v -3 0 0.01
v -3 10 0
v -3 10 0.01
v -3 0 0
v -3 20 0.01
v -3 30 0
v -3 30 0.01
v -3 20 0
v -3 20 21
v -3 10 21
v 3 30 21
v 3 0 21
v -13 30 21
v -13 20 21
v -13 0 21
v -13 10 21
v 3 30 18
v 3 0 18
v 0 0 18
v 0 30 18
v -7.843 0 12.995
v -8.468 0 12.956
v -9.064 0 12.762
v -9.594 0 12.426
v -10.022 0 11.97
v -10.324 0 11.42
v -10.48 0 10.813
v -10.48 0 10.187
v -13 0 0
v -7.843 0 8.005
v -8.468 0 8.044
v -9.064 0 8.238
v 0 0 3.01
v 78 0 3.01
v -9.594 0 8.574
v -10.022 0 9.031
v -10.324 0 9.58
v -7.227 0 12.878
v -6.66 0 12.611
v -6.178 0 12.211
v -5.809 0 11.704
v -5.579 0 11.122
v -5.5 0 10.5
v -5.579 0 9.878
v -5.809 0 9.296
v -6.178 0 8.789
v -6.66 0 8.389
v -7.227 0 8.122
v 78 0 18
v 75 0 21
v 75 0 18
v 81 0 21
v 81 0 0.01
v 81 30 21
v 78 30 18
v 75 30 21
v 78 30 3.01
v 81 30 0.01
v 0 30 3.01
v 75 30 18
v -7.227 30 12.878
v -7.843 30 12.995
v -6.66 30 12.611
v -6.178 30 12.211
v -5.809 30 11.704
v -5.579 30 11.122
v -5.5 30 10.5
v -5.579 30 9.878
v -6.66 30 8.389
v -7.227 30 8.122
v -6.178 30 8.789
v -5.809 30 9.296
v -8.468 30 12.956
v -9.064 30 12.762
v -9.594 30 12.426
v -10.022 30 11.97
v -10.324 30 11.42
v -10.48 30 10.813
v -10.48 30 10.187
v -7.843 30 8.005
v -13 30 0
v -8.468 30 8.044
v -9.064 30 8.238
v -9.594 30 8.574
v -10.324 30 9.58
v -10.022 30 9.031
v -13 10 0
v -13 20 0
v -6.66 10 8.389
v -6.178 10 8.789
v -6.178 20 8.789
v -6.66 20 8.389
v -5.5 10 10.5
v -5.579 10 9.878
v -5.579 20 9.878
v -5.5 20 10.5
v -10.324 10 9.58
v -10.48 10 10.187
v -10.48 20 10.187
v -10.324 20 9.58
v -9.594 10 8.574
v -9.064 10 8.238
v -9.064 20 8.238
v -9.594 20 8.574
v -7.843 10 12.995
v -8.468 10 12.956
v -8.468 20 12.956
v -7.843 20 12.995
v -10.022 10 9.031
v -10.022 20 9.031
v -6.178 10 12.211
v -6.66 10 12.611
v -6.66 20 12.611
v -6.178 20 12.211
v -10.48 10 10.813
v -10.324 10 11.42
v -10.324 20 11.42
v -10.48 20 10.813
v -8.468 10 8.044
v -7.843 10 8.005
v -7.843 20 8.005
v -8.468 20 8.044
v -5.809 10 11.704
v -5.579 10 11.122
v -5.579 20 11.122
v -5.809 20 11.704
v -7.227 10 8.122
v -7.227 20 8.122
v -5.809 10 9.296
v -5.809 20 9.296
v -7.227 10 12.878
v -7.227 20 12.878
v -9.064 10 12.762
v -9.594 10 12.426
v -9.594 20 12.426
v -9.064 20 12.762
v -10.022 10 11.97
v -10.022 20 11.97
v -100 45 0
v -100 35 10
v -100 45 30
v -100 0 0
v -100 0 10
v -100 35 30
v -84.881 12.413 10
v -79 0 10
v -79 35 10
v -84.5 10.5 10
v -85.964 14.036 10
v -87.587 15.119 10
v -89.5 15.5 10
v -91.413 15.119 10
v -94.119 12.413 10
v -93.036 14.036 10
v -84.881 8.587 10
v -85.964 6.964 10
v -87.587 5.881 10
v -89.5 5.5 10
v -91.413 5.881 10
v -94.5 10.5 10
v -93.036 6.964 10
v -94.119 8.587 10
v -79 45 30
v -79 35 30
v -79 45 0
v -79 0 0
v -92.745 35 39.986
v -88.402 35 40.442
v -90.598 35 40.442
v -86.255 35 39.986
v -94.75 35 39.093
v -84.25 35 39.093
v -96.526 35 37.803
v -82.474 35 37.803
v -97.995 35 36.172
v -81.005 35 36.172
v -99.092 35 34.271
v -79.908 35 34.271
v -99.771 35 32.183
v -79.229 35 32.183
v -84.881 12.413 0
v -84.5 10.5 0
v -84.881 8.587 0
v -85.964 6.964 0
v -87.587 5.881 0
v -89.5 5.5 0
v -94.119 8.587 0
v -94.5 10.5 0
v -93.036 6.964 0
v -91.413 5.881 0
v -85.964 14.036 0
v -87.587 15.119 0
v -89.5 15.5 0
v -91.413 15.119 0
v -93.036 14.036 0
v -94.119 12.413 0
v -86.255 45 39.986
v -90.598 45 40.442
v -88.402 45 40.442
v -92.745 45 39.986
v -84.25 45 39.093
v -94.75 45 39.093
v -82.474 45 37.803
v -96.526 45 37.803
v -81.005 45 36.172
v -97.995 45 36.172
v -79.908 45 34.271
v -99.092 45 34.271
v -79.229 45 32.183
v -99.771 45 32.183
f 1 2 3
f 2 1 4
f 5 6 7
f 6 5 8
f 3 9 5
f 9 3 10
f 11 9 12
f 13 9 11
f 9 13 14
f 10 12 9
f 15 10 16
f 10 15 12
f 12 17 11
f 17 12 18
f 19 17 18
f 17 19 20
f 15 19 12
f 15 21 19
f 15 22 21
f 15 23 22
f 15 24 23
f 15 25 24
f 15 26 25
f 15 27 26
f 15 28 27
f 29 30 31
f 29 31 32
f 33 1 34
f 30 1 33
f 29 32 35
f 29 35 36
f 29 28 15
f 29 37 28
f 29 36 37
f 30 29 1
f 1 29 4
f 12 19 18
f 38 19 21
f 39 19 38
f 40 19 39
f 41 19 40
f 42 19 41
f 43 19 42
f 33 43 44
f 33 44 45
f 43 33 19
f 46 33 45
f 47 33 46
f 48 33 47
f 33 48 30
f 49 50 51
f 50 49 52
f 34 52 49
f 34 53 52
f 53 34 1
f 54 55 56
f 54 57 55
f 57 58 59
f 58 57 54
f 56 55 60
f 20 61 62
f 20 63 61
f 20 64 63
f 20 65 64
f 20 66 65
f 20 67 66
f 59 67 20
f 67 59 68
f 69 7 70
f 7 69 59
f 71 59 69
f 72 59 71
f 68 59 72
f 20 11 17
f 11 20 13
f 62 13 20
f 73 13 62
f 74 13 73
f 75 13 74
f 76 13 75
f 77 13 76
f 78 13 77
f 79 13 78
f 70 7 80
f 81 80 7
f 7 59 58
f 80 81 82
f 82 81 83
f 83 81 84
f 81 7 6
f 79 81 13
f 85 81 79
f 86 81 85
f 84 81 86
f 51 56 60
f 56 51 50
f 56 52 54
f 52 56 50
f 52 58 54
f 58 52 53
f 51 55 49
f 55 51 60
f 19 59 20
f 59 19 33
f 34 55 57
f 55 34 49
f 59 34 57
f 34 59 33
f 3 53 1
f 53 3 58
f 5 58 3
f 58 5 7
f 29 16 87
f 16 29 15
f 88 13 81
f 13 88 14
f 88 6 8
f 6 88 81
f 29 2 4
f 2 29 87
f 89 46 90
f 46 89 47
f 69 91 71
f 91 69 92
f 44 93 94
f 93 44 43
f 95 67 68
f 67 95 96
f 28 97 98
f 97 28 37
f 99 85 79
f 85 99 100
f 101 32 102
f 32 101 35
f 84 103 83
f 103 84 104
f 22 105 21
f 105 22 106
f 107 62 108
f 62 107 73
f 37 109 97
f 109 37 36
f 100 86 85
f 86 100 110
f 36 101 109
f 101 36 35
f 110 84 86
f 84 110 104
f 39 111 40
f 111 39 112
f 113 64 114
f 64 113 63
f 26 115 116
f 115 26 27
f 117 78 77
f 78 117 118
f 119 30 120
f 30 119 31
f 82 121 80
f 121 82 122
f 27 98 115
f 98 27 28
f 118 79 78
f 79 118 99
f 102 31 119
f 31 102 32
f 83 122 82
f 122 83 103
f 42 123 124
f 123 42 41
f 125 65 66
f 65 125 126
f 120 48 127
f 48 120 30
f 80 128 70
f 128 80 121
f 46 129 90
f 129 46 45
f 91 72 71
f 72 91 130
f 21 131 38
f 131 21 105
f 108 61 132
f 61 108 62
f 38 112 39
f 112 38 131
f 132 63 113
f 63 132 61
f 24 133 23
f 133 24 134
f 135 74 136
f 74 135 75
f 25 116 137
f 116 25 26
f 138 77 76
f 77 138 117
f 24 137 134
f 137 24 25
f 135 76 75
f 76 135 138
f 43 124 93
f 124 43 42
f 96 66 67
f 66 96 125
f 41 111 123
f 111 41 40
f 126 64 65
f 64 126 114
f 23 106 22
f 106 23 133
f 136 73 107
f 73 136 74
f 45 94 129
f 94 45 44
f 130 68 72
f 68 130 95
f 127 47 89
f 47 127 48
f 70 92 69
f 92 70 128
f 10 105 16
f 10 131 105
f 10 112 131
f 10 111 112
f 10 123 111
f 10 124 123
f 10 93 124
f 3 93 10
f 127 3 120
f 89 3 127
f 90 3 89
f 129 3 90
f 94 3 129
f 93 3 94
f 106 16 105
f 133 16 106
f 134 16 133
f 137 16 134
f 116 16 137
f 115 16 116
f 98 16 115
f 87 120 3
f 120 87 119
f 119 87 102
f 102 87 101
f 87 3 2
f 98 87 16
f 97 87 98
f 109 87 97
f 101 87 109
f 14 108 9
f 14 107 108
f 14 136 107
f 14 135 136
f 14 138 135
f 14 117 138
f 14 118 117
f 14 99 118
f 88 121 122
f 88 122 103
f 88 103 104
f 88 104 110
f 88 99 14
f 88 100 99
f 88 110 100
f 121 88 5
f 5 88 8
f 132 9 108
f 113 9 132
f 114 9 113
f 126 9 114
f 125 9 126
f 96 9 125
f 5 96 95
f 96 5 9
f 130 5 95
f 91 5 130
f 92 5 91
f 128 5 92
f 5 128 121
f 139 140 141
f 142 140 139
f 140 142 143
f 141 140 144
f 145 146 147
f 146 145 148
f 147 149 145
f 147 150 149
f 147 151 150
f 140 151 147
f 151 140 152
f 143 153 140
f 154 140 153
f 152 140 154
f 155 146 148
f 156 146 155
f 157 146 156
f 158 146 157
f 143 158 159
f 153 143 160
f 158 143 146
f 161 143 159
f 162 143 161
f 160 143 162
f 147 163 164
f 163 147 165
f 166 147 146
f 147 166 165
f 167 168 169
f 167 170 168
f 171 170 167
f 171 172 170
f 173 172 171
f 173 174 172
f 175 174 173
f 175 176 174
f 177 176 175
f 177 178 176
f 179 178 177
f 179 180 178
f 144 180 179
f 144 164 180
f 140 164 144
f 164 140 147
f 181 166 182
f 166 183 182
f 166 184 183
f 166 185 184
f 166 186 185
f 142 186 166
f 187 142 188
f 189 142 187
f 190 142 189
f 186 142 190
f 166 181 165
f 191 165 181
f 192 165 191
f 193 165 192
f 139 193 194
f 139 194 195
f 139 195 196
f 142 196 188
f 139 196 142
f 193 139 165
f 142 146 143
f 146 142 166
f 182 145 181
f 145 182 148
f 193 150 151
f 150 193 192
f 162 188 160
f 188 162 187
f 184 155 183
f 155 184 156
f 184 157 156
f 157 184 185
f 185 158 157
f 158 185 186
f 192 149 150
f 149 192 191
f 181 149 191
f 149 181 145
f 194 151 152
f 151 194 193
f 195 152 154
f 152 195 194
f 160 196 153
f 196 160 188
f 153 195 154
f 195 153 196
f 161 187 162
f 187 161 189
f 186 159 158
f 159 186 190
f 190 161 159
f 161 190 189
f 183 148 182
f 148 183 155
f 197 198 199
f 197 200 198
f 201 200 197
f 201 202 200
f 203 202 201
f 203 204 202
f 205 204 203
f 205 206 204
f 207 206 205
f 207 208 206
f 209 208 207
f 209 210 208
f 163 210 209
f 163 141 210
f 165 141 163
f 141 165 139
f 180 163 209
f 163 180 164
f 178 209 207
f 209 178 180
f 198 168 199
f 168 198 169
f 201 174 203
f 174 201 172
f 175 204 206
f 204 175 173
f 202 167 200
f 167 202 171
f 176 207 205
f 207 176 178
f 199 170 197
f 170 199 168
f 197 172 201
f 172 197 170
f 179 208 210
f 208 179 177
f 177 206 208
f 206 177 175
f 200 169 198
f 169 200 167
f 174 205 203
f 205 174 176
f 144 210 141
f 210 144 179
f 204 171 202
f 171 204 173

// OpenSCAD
phone_l = 30;
phone_w = 78;
phone_t = 15;

through_bolt_d = 5;
through_bolt_l = 30;

tripod_bolt_d = 10;
tripod_block_d = 35;

wall_t = 3;

translate([0, 0, wall_t]) { 
    translate([-wall_t, 0, 0]) cube([wall_t, phone_l, phone_t]);
    translate([phone_w, 0, 0]) cube([wall_t, phone_l, phone_t]);

    translate([0, 0, phone_t]) { 
        translate([-wall_t, 0, 0]) cube([wall_t*2, phone_l, wall_t]);
        translate([phone_w-wall_t, 0, 0]) cube([wall_t*2, phone_l, wall_t]);
    }
    translate([-wall_t, 0, -wall_t+0.01]) cube([phone_w + wall_t*2, phone_l, wall_t]);
}

b_d=through_bolt_d*2;
b_h=phone_t+wall_t*2;
ib_l = through_bolt_l/3;
translate([-wall_t-b_d, -(through_bolt_l - phone_l)/2, 0]) {
    difference() {
        cube([b_d, through_bolt_l, b_h]);
        translate([b_d/2, 0, b_h/2]) rotate([-90, 0, 0]) translate([0, 0, -0.5]) cylinder(d=through_bolt_d, h=through_bolt_l+1, $fn=25);
        translate([0, through_bolt_l/2-ib_l/2, 0]) cube([b_d, ib_l, b_h]);
    }
    
}

translate([-100, 0, 0]) {
    extra_d = tripod_block_d - b_h;
    tripod_block_d = b_h;
    difference() {
        cube([tripod_block_d, tripod_block_d+extra_d, tripod_bolt_d]);
        translate([tripod_block_d/2, tripod_block_d/2, -0.5]) cylinder(d=tripod_bolt_d,h=tripod_bolt_d+1);
    }
    translate([0, tripod_block_d+extra_d, 0]) {
        cube([tripod_block_d, ib_l, tripod_bolt_d]);
        
        translate([tripod_block_d/2-b_h/2, 0, tripod_bolt_d]) {
            cube([b_h, ib_l, b_d*2]); 
            translate([b_h/2, b_d, b_d*2]) rotate([90, 0, 0]) cylinder(d=b_h,h=b_d);
        }
    }
    
}
